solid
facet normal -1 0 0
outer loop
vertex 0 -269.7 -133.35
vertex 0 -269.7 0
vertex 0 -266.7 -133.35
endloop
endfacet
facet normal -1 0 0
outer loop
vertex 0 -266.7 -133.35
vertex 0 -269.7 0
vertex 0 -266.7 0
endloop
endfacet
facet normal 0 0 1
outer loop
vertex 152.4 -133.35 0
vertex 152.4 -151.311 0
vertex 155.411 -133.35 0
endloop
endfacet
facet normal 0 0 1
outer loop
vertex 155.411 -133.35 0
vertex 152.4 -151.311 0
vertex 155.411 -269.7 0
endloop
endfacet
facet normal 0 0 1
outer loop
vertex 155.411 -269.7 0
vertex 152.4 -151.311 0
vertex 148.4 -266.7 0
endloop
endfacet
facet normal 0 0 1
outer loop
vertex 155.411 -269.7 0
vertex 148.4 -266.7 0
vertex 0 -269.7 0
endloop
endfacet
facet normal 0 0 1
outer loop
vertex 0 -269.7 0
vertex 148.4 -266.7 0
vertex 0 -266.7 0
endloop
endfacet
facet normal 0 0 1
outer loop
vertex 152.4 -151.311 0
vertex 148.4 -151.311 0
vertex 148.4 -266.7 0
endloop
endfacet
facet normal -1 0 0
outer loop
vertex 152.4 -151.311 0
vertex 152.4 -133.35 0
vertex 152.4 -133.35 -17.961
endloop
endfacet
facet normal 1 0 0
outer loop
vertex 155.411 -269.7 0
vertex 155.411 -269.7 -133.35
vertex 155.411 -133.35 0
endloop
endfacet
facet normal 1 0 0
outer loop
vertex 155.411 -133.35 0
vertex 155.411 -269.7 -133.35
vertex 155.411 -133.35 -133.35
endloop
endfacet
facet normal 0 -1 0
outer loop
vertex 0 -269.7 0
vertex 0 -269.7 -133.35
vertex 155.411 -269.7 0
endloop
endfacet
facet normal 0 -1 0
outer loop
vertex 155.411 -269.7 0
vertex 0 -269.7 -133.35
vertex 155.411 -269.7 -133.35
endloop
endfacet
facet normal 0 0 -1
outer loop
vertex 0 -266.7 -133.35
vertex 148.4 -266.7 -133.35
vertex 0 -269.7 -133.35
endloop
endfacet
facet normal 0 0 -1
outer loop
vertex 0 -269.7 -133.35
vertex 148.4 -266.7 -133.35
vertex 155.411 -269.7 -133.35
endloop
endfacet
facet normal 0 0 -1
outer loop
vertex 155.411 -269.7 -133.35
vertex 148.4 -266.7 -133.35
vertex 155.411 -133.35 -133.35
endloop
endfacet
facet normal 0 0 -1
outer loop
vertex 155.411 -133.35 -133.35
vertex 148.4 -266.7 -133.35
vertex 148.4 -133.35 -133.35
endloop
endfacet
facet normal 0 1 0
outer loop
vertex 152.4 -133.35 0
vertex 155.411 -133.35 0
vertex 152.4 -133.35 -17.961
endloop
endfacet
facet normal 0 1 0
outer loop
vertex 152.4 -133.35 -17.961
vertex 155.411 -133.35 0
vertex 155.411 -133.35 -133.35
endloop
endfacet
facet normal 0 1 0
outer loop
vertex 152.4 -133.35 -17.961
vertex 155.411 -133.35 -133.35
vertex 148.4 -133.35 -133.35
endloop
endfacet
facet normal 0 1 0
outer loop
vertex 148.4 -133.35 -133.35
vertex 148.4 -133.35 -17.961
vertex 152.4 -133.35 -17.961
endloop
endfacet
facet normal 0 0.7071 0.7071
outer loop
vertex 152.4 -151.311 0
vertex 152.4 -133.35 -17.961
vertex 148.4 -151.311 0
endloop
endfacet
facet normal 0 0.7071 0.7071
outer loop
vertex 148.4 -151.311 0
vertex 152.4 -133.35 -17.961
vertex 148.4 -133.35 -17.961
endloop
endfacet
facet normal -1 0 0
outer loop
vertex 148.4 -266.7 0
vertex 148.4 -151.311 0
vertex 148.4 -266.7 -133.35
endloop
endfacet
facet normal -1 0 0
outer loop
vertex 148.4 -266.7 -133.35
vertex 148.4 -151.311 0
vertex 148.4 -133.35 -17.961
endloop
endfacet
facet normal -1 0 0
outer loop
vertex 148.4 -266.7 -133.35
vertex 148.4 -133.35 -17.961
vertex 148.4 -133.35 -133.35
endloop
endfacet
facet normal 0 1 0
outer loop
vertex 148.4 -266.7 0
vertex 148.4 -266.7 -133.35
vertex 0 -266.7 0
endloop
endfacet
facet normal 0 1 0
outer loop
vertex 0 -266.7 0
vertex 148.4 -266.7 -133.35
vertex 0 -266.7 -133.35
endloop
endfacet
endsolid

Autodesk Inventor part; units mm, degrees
ref_plane "YZ Plane" through (0, 0, 0) normal (1, 0, 0) x (0, 1, 0)
ref_plane "XZ Plane" through (0, 0, 0) normal (0, 1, 0) x (-1, 0, 0)
ref_plane "XY Plane" through (0, 0, 0) normal (0, 0, 1) x (1, 0, 0)
sketch "Sketch1" plane through (0, 0, 0) normal (0, 1, 0) x (-1, 0, 0)
  line L0 (110, -80) -> (-110, -80)
  line L1 (-110, -80) -> (-110, 80)
  line L2 (-110, 80) -> (110, 80)
  line L3 (110, 80) -> (110, -80)
  line L4 (320.2117, -53.5522) -> (168.036, -53.5522) construction
  line L5 (168.036, -53.5522) -> (168.036, 90.1689) construction
  line L6 (168.036, 90.1689) -> (320.2117, 90.1689) construction
  line L7 (320.2117, 90.1689) -> (320.2117, -53.5522) construction
  line L8 (124.3, -89.75) -> (-124.3, -89.75) construction
  line L9 (-124.3, -89.75) -> (-124.3, 89.75) construction
  line L10 (-124.3, 89.75) -> (124.3, 89.75) construction
  line L11 (124.3, 89.75) -> (124.3, -89.75) construction
  line L12 (124.3, -89.75) -> (-124.3, 89.75) construction
  line L13 (-124.3, -89.75) -> (124.3, 89.75) construction
  line L14 (-152.4, -107.95) -> (152.4, -107.95)
  line L15 (152.4, -107.95) -> (152.4, 107.95)
  line L16 (152.4, 107.95) -> (-152.4, 107.95)
  line L17 (-152.4, 107.95) -> (-152.4, -107.95)
  line L18 (-152.4, -107.95) -> (152.4, 107.95) construction
  line L19 (152.4, -107.95) -> (-152.4, 107.95) construction
  line L20 (177.8, 133.35) -> (177.8, -133.35)
  line L21 (177.8, -133.35) -> (-177.8, -133.35)
  line L22 (-177.8, -133.35) -> (-177.8, 133.35)
  line L23 (-177.8, 133.35) -> (177.8, 133.35)
  point P0 (0, 0)
  dimension "d11" = 220
  dimension "d12" = 160
  dimension "d15" = 248.6
  dimension "d16" = 179.5
  dimension "d18" = 304.8
  dimension "d19" = 215.9
  dimension "d22" = 25.4
extrude "Top" add sketch "Sketch1" along normal blind 25.4 contours L17 L16 L15 L14 | L20 L21 L22 L23
sketch "Sketch3" plane through (177.8, 0, 133.35) normal (1, 0, 0) x (0, 0, -1)
  line L0 (0, 0) -> (0, 25.4) projected
  line L1 (266.7, 0) -> (266.7, 25.4) projected
  line L2 (0, 0) -> (266.7, 0)
  line L3 (266.7, 0) -> (266.7, -266.7)
  line L4 (266.7, -266.7) -> (0, -266.7)
  line L5 (0, -266.7) -> (0, 0)
  point P0 (133.35, 0)
  dimension "d25" = 266.7
extrude "Right" add sketch "Sketch3" against normal blind 50.8
sketch "Sketch4" plane through (-177.8, 0, -133.35) normal (-1, 0, 0) x (0, 0, 1)
  line L0 (0, 0) -> (0, 25.4) projected
  line L1 (266.7, -266.7) -> (266.7, 0) projected
  line L2 (0, 0) -> (266.7, 0)
  line L3 (266.7, 0) -> (266.7, -266.7)
  line L4 (266.7, -266.7) -> (0, -266.7)
  line L5 (0, -266.7) -> (0, 0)
  point P0 (133.35, 0)
  dimension "d28" = 266.7
extrude "Left" add sketch "Sketch4" against normal blind 50.8
sketch "Sketch5" plane through (0, 0, 0) normal (1, 0, 0) x (0, 1, 0)
  line L0 (-266.7, -133.35) -> (25.4, -133.35) projected
  line L1 (-266.7, 133.35) -> (-266.7, -133.35) projected
  line L2 (0, -133.35) -> (-266.7, 133.35)
  line L3 (-266.7, 133.35) -> (-275.6803, 124.3697)
  line L4 (-275.6803, 124.3697) -> (-8.9803, -142.3303)
  line L5 (-8.9803, -142.3303) -> (0, -133.35)
  point P0 (0, 0)
  dimension "d31" = 12.7
extrude "Plexiglass Cut" cut sketch "Sketch5" along normal mid plane 304.8 contours L4 L1 L2 L0 | L0 L5 L4 | L4 L3 L1
sketch "Sketch6" plane through (-177.8, -266.7, -133.35) normal (0, -1, 0) x (1, 0, 0)
  line L0 (0, 0) -> (0, 266.7) projected
  line L1 (355.6, 0) -> (0, 0) projected
  line L2 (0, 266.7) -> (355.6, 266.7)
  line L3 (355.6, 266.7) -> (355.6, 0)
  line L4 (355.6, 0) -> (0, 0)
  line L5 (0, 0) -> (0, 266.7)
  point P0 (177.8, 133.35)
extrude "Bottom" add sketch "Sketch6" along normal blind 25.4
sketch "Sketch9" plane through (0, 25.4, 0) normal (0, 1, 0) x (1, 0, 0)
  line L0 (177.8, -133.35) -> (127, -133.35) projected
  line L1 (177.8, 133.35) -> (-177.8, 133.35) projected
  line L2 (177.8, -133.35) -> (-177.8, -133.35)
  line L3 (-177.8, -133.35) -> (-177.8, 133.35)
  line L4 (-177.8, 133.35) -> (177.8, 133.35)
  line L5 (177.8, 133.35) -> (177.8, -133.35)
  point P0 (0, 0)
extrude "Top Flattening" cut sketch "Sketch9" against normal blind 22.4
sketch "Sketch10" plane through (0, 3, 0) normal (0, 1, 0) x (1, 0, 0)
  line L0 (-177.8, -133.35) -> (-177.8, 133.35) projected
  line L1 (-155.4106, 133.35) -> (-177.8, 133.35)
  line L2 (-177.8, 133.35) -> (-177.8, -133.35)
  line L3 (-177.8, -133.35) -> (-155.4106, -133.35)
  line L4 (-155.4106, -133.35) -> (-155.4106, 133.35)
  line L5 (177.8, 133.35) -> (177.8, -133.35)
  line L6 (177.8, -133.35) -> (155.4106, -133.35)
  line L7 (155.4106, -133.35) -> (155.4106, 133.35)
  line L8 (155.4106, 133.35) -> (177.8, 133.35)
  line L9 (152.4, -115.3895) -> (152.4, 133.35) projected
  point P0 (0, 0)
  point P1 (-177.8, 0)
  dimension "d48" = 22.3894
  dimension "d49" = 22.3894
extrude "Outer Side Flattening" cut sketch "Sketch10" against normal through all
sketch "Sketch11" plane through (-177.8, -292.1, -133.35) normal (0, -1, 0) x (1, 0, 0)
  line L0 (22.3894, 0) -> (333.2106, 0) projected
  line L1 (333.2106, 0) -> (22.3894, 0)
  line L2 (22.3894, 0) -> (22.3894, 266.7)
  line L3 (22.3894, 266.7) -> (333.2106, 266.7)
  line L4 (333.2106, 266.7) -> (333.2106, 0)
  point P0 (177.8, 133.35)
extrude "Bottom Flattening" cut sketch "Sketch11" against normal blind 22.4
sketch "Sketch12" plane through (155.4106, 3, -133.35) normal (0, 0, -1) x (-1, 0, 0)
  line L0 (155.4106, -3) -> (155.4106, -269.7) construction
  line L1 (7.0106, -269.7) -> (7.0106, -3)
  line L2 (7.0106, -3) -> (303.8106, -3)
  line L3 (303.8106, -3) -> (303.8106, -269.7)
  line L4 (303.8106, -269.7) -> (7.0106, -269.7)
  line L5 (7.0106, -269.7) -> (303.8106, -3) construction
  line L6 (7.0106, -3) -> (303.8106, -269.7) construction
  point P0 (155.4106, -136.35)
  point P1 (155.4106, -3)
  dimension "d54" = 296.8
extrude "Inner Flattening" cut sketch "Sketch12" against normal through all
sketch "Sketch13" plane through (-155.4106, 3, 133.35) normal (0, 0, 1) x (1, 0, 0)
  line L0 (310.8211, -272.7) -> (310.8211, 0) projected
  line L1 (0, -272.7) -> (0, 0) projected
  line L2 (310.8211, -136.35) -> (0, -136.35)
  line L3 (0, -136.35) -> (0, 0)
  line L4 (0, 0) -> (310.8211, 0)
  line L5 (310.8211, 0) -> (310.8211, -136.35)
  point P0 (155.4106, -3)
  point P1 (310.8211, 0)
  point P2 (0, -136.35)
extrude "Top Cut" cut sketch "Sketch13" against normal through all
sketch "Sketch14" plane through (-155.4106, -133.35, 133.35) normal (0, 1, 0) x (1, 0, 0)
  line L0 (310.8211, 266.7) -> (0, 266.7) projected
  line L1 (155.4106, 133.35) -> (310.8211, 133.35)
  line L2 (310.8211, 133.35) -> (310.8211, 266.7)
  line L3 (310.8211, 266.7) -> (155.4106, 266.7)
  line L4 (155.4106, 266.7) -> (155.4106, 133.35)
  line L5 (0, 0) -> (310.8212, 0) projected
  line L6 (310.8211, 266.7) -> (0, 266.7)
  line L7 (0, 266.7) -> (0, 0)
  line L8 (0, 0) -> (310.8211, 0)
  line L9 (310.8211, 0) -> (310.8211, 266.7)
extrude "Quarter Cut" cut sketch "Sketch14" against normal through all contours L4 L1 L9 L5 L7 L0
properties part number "Apple iPad 2022 Hologram"
